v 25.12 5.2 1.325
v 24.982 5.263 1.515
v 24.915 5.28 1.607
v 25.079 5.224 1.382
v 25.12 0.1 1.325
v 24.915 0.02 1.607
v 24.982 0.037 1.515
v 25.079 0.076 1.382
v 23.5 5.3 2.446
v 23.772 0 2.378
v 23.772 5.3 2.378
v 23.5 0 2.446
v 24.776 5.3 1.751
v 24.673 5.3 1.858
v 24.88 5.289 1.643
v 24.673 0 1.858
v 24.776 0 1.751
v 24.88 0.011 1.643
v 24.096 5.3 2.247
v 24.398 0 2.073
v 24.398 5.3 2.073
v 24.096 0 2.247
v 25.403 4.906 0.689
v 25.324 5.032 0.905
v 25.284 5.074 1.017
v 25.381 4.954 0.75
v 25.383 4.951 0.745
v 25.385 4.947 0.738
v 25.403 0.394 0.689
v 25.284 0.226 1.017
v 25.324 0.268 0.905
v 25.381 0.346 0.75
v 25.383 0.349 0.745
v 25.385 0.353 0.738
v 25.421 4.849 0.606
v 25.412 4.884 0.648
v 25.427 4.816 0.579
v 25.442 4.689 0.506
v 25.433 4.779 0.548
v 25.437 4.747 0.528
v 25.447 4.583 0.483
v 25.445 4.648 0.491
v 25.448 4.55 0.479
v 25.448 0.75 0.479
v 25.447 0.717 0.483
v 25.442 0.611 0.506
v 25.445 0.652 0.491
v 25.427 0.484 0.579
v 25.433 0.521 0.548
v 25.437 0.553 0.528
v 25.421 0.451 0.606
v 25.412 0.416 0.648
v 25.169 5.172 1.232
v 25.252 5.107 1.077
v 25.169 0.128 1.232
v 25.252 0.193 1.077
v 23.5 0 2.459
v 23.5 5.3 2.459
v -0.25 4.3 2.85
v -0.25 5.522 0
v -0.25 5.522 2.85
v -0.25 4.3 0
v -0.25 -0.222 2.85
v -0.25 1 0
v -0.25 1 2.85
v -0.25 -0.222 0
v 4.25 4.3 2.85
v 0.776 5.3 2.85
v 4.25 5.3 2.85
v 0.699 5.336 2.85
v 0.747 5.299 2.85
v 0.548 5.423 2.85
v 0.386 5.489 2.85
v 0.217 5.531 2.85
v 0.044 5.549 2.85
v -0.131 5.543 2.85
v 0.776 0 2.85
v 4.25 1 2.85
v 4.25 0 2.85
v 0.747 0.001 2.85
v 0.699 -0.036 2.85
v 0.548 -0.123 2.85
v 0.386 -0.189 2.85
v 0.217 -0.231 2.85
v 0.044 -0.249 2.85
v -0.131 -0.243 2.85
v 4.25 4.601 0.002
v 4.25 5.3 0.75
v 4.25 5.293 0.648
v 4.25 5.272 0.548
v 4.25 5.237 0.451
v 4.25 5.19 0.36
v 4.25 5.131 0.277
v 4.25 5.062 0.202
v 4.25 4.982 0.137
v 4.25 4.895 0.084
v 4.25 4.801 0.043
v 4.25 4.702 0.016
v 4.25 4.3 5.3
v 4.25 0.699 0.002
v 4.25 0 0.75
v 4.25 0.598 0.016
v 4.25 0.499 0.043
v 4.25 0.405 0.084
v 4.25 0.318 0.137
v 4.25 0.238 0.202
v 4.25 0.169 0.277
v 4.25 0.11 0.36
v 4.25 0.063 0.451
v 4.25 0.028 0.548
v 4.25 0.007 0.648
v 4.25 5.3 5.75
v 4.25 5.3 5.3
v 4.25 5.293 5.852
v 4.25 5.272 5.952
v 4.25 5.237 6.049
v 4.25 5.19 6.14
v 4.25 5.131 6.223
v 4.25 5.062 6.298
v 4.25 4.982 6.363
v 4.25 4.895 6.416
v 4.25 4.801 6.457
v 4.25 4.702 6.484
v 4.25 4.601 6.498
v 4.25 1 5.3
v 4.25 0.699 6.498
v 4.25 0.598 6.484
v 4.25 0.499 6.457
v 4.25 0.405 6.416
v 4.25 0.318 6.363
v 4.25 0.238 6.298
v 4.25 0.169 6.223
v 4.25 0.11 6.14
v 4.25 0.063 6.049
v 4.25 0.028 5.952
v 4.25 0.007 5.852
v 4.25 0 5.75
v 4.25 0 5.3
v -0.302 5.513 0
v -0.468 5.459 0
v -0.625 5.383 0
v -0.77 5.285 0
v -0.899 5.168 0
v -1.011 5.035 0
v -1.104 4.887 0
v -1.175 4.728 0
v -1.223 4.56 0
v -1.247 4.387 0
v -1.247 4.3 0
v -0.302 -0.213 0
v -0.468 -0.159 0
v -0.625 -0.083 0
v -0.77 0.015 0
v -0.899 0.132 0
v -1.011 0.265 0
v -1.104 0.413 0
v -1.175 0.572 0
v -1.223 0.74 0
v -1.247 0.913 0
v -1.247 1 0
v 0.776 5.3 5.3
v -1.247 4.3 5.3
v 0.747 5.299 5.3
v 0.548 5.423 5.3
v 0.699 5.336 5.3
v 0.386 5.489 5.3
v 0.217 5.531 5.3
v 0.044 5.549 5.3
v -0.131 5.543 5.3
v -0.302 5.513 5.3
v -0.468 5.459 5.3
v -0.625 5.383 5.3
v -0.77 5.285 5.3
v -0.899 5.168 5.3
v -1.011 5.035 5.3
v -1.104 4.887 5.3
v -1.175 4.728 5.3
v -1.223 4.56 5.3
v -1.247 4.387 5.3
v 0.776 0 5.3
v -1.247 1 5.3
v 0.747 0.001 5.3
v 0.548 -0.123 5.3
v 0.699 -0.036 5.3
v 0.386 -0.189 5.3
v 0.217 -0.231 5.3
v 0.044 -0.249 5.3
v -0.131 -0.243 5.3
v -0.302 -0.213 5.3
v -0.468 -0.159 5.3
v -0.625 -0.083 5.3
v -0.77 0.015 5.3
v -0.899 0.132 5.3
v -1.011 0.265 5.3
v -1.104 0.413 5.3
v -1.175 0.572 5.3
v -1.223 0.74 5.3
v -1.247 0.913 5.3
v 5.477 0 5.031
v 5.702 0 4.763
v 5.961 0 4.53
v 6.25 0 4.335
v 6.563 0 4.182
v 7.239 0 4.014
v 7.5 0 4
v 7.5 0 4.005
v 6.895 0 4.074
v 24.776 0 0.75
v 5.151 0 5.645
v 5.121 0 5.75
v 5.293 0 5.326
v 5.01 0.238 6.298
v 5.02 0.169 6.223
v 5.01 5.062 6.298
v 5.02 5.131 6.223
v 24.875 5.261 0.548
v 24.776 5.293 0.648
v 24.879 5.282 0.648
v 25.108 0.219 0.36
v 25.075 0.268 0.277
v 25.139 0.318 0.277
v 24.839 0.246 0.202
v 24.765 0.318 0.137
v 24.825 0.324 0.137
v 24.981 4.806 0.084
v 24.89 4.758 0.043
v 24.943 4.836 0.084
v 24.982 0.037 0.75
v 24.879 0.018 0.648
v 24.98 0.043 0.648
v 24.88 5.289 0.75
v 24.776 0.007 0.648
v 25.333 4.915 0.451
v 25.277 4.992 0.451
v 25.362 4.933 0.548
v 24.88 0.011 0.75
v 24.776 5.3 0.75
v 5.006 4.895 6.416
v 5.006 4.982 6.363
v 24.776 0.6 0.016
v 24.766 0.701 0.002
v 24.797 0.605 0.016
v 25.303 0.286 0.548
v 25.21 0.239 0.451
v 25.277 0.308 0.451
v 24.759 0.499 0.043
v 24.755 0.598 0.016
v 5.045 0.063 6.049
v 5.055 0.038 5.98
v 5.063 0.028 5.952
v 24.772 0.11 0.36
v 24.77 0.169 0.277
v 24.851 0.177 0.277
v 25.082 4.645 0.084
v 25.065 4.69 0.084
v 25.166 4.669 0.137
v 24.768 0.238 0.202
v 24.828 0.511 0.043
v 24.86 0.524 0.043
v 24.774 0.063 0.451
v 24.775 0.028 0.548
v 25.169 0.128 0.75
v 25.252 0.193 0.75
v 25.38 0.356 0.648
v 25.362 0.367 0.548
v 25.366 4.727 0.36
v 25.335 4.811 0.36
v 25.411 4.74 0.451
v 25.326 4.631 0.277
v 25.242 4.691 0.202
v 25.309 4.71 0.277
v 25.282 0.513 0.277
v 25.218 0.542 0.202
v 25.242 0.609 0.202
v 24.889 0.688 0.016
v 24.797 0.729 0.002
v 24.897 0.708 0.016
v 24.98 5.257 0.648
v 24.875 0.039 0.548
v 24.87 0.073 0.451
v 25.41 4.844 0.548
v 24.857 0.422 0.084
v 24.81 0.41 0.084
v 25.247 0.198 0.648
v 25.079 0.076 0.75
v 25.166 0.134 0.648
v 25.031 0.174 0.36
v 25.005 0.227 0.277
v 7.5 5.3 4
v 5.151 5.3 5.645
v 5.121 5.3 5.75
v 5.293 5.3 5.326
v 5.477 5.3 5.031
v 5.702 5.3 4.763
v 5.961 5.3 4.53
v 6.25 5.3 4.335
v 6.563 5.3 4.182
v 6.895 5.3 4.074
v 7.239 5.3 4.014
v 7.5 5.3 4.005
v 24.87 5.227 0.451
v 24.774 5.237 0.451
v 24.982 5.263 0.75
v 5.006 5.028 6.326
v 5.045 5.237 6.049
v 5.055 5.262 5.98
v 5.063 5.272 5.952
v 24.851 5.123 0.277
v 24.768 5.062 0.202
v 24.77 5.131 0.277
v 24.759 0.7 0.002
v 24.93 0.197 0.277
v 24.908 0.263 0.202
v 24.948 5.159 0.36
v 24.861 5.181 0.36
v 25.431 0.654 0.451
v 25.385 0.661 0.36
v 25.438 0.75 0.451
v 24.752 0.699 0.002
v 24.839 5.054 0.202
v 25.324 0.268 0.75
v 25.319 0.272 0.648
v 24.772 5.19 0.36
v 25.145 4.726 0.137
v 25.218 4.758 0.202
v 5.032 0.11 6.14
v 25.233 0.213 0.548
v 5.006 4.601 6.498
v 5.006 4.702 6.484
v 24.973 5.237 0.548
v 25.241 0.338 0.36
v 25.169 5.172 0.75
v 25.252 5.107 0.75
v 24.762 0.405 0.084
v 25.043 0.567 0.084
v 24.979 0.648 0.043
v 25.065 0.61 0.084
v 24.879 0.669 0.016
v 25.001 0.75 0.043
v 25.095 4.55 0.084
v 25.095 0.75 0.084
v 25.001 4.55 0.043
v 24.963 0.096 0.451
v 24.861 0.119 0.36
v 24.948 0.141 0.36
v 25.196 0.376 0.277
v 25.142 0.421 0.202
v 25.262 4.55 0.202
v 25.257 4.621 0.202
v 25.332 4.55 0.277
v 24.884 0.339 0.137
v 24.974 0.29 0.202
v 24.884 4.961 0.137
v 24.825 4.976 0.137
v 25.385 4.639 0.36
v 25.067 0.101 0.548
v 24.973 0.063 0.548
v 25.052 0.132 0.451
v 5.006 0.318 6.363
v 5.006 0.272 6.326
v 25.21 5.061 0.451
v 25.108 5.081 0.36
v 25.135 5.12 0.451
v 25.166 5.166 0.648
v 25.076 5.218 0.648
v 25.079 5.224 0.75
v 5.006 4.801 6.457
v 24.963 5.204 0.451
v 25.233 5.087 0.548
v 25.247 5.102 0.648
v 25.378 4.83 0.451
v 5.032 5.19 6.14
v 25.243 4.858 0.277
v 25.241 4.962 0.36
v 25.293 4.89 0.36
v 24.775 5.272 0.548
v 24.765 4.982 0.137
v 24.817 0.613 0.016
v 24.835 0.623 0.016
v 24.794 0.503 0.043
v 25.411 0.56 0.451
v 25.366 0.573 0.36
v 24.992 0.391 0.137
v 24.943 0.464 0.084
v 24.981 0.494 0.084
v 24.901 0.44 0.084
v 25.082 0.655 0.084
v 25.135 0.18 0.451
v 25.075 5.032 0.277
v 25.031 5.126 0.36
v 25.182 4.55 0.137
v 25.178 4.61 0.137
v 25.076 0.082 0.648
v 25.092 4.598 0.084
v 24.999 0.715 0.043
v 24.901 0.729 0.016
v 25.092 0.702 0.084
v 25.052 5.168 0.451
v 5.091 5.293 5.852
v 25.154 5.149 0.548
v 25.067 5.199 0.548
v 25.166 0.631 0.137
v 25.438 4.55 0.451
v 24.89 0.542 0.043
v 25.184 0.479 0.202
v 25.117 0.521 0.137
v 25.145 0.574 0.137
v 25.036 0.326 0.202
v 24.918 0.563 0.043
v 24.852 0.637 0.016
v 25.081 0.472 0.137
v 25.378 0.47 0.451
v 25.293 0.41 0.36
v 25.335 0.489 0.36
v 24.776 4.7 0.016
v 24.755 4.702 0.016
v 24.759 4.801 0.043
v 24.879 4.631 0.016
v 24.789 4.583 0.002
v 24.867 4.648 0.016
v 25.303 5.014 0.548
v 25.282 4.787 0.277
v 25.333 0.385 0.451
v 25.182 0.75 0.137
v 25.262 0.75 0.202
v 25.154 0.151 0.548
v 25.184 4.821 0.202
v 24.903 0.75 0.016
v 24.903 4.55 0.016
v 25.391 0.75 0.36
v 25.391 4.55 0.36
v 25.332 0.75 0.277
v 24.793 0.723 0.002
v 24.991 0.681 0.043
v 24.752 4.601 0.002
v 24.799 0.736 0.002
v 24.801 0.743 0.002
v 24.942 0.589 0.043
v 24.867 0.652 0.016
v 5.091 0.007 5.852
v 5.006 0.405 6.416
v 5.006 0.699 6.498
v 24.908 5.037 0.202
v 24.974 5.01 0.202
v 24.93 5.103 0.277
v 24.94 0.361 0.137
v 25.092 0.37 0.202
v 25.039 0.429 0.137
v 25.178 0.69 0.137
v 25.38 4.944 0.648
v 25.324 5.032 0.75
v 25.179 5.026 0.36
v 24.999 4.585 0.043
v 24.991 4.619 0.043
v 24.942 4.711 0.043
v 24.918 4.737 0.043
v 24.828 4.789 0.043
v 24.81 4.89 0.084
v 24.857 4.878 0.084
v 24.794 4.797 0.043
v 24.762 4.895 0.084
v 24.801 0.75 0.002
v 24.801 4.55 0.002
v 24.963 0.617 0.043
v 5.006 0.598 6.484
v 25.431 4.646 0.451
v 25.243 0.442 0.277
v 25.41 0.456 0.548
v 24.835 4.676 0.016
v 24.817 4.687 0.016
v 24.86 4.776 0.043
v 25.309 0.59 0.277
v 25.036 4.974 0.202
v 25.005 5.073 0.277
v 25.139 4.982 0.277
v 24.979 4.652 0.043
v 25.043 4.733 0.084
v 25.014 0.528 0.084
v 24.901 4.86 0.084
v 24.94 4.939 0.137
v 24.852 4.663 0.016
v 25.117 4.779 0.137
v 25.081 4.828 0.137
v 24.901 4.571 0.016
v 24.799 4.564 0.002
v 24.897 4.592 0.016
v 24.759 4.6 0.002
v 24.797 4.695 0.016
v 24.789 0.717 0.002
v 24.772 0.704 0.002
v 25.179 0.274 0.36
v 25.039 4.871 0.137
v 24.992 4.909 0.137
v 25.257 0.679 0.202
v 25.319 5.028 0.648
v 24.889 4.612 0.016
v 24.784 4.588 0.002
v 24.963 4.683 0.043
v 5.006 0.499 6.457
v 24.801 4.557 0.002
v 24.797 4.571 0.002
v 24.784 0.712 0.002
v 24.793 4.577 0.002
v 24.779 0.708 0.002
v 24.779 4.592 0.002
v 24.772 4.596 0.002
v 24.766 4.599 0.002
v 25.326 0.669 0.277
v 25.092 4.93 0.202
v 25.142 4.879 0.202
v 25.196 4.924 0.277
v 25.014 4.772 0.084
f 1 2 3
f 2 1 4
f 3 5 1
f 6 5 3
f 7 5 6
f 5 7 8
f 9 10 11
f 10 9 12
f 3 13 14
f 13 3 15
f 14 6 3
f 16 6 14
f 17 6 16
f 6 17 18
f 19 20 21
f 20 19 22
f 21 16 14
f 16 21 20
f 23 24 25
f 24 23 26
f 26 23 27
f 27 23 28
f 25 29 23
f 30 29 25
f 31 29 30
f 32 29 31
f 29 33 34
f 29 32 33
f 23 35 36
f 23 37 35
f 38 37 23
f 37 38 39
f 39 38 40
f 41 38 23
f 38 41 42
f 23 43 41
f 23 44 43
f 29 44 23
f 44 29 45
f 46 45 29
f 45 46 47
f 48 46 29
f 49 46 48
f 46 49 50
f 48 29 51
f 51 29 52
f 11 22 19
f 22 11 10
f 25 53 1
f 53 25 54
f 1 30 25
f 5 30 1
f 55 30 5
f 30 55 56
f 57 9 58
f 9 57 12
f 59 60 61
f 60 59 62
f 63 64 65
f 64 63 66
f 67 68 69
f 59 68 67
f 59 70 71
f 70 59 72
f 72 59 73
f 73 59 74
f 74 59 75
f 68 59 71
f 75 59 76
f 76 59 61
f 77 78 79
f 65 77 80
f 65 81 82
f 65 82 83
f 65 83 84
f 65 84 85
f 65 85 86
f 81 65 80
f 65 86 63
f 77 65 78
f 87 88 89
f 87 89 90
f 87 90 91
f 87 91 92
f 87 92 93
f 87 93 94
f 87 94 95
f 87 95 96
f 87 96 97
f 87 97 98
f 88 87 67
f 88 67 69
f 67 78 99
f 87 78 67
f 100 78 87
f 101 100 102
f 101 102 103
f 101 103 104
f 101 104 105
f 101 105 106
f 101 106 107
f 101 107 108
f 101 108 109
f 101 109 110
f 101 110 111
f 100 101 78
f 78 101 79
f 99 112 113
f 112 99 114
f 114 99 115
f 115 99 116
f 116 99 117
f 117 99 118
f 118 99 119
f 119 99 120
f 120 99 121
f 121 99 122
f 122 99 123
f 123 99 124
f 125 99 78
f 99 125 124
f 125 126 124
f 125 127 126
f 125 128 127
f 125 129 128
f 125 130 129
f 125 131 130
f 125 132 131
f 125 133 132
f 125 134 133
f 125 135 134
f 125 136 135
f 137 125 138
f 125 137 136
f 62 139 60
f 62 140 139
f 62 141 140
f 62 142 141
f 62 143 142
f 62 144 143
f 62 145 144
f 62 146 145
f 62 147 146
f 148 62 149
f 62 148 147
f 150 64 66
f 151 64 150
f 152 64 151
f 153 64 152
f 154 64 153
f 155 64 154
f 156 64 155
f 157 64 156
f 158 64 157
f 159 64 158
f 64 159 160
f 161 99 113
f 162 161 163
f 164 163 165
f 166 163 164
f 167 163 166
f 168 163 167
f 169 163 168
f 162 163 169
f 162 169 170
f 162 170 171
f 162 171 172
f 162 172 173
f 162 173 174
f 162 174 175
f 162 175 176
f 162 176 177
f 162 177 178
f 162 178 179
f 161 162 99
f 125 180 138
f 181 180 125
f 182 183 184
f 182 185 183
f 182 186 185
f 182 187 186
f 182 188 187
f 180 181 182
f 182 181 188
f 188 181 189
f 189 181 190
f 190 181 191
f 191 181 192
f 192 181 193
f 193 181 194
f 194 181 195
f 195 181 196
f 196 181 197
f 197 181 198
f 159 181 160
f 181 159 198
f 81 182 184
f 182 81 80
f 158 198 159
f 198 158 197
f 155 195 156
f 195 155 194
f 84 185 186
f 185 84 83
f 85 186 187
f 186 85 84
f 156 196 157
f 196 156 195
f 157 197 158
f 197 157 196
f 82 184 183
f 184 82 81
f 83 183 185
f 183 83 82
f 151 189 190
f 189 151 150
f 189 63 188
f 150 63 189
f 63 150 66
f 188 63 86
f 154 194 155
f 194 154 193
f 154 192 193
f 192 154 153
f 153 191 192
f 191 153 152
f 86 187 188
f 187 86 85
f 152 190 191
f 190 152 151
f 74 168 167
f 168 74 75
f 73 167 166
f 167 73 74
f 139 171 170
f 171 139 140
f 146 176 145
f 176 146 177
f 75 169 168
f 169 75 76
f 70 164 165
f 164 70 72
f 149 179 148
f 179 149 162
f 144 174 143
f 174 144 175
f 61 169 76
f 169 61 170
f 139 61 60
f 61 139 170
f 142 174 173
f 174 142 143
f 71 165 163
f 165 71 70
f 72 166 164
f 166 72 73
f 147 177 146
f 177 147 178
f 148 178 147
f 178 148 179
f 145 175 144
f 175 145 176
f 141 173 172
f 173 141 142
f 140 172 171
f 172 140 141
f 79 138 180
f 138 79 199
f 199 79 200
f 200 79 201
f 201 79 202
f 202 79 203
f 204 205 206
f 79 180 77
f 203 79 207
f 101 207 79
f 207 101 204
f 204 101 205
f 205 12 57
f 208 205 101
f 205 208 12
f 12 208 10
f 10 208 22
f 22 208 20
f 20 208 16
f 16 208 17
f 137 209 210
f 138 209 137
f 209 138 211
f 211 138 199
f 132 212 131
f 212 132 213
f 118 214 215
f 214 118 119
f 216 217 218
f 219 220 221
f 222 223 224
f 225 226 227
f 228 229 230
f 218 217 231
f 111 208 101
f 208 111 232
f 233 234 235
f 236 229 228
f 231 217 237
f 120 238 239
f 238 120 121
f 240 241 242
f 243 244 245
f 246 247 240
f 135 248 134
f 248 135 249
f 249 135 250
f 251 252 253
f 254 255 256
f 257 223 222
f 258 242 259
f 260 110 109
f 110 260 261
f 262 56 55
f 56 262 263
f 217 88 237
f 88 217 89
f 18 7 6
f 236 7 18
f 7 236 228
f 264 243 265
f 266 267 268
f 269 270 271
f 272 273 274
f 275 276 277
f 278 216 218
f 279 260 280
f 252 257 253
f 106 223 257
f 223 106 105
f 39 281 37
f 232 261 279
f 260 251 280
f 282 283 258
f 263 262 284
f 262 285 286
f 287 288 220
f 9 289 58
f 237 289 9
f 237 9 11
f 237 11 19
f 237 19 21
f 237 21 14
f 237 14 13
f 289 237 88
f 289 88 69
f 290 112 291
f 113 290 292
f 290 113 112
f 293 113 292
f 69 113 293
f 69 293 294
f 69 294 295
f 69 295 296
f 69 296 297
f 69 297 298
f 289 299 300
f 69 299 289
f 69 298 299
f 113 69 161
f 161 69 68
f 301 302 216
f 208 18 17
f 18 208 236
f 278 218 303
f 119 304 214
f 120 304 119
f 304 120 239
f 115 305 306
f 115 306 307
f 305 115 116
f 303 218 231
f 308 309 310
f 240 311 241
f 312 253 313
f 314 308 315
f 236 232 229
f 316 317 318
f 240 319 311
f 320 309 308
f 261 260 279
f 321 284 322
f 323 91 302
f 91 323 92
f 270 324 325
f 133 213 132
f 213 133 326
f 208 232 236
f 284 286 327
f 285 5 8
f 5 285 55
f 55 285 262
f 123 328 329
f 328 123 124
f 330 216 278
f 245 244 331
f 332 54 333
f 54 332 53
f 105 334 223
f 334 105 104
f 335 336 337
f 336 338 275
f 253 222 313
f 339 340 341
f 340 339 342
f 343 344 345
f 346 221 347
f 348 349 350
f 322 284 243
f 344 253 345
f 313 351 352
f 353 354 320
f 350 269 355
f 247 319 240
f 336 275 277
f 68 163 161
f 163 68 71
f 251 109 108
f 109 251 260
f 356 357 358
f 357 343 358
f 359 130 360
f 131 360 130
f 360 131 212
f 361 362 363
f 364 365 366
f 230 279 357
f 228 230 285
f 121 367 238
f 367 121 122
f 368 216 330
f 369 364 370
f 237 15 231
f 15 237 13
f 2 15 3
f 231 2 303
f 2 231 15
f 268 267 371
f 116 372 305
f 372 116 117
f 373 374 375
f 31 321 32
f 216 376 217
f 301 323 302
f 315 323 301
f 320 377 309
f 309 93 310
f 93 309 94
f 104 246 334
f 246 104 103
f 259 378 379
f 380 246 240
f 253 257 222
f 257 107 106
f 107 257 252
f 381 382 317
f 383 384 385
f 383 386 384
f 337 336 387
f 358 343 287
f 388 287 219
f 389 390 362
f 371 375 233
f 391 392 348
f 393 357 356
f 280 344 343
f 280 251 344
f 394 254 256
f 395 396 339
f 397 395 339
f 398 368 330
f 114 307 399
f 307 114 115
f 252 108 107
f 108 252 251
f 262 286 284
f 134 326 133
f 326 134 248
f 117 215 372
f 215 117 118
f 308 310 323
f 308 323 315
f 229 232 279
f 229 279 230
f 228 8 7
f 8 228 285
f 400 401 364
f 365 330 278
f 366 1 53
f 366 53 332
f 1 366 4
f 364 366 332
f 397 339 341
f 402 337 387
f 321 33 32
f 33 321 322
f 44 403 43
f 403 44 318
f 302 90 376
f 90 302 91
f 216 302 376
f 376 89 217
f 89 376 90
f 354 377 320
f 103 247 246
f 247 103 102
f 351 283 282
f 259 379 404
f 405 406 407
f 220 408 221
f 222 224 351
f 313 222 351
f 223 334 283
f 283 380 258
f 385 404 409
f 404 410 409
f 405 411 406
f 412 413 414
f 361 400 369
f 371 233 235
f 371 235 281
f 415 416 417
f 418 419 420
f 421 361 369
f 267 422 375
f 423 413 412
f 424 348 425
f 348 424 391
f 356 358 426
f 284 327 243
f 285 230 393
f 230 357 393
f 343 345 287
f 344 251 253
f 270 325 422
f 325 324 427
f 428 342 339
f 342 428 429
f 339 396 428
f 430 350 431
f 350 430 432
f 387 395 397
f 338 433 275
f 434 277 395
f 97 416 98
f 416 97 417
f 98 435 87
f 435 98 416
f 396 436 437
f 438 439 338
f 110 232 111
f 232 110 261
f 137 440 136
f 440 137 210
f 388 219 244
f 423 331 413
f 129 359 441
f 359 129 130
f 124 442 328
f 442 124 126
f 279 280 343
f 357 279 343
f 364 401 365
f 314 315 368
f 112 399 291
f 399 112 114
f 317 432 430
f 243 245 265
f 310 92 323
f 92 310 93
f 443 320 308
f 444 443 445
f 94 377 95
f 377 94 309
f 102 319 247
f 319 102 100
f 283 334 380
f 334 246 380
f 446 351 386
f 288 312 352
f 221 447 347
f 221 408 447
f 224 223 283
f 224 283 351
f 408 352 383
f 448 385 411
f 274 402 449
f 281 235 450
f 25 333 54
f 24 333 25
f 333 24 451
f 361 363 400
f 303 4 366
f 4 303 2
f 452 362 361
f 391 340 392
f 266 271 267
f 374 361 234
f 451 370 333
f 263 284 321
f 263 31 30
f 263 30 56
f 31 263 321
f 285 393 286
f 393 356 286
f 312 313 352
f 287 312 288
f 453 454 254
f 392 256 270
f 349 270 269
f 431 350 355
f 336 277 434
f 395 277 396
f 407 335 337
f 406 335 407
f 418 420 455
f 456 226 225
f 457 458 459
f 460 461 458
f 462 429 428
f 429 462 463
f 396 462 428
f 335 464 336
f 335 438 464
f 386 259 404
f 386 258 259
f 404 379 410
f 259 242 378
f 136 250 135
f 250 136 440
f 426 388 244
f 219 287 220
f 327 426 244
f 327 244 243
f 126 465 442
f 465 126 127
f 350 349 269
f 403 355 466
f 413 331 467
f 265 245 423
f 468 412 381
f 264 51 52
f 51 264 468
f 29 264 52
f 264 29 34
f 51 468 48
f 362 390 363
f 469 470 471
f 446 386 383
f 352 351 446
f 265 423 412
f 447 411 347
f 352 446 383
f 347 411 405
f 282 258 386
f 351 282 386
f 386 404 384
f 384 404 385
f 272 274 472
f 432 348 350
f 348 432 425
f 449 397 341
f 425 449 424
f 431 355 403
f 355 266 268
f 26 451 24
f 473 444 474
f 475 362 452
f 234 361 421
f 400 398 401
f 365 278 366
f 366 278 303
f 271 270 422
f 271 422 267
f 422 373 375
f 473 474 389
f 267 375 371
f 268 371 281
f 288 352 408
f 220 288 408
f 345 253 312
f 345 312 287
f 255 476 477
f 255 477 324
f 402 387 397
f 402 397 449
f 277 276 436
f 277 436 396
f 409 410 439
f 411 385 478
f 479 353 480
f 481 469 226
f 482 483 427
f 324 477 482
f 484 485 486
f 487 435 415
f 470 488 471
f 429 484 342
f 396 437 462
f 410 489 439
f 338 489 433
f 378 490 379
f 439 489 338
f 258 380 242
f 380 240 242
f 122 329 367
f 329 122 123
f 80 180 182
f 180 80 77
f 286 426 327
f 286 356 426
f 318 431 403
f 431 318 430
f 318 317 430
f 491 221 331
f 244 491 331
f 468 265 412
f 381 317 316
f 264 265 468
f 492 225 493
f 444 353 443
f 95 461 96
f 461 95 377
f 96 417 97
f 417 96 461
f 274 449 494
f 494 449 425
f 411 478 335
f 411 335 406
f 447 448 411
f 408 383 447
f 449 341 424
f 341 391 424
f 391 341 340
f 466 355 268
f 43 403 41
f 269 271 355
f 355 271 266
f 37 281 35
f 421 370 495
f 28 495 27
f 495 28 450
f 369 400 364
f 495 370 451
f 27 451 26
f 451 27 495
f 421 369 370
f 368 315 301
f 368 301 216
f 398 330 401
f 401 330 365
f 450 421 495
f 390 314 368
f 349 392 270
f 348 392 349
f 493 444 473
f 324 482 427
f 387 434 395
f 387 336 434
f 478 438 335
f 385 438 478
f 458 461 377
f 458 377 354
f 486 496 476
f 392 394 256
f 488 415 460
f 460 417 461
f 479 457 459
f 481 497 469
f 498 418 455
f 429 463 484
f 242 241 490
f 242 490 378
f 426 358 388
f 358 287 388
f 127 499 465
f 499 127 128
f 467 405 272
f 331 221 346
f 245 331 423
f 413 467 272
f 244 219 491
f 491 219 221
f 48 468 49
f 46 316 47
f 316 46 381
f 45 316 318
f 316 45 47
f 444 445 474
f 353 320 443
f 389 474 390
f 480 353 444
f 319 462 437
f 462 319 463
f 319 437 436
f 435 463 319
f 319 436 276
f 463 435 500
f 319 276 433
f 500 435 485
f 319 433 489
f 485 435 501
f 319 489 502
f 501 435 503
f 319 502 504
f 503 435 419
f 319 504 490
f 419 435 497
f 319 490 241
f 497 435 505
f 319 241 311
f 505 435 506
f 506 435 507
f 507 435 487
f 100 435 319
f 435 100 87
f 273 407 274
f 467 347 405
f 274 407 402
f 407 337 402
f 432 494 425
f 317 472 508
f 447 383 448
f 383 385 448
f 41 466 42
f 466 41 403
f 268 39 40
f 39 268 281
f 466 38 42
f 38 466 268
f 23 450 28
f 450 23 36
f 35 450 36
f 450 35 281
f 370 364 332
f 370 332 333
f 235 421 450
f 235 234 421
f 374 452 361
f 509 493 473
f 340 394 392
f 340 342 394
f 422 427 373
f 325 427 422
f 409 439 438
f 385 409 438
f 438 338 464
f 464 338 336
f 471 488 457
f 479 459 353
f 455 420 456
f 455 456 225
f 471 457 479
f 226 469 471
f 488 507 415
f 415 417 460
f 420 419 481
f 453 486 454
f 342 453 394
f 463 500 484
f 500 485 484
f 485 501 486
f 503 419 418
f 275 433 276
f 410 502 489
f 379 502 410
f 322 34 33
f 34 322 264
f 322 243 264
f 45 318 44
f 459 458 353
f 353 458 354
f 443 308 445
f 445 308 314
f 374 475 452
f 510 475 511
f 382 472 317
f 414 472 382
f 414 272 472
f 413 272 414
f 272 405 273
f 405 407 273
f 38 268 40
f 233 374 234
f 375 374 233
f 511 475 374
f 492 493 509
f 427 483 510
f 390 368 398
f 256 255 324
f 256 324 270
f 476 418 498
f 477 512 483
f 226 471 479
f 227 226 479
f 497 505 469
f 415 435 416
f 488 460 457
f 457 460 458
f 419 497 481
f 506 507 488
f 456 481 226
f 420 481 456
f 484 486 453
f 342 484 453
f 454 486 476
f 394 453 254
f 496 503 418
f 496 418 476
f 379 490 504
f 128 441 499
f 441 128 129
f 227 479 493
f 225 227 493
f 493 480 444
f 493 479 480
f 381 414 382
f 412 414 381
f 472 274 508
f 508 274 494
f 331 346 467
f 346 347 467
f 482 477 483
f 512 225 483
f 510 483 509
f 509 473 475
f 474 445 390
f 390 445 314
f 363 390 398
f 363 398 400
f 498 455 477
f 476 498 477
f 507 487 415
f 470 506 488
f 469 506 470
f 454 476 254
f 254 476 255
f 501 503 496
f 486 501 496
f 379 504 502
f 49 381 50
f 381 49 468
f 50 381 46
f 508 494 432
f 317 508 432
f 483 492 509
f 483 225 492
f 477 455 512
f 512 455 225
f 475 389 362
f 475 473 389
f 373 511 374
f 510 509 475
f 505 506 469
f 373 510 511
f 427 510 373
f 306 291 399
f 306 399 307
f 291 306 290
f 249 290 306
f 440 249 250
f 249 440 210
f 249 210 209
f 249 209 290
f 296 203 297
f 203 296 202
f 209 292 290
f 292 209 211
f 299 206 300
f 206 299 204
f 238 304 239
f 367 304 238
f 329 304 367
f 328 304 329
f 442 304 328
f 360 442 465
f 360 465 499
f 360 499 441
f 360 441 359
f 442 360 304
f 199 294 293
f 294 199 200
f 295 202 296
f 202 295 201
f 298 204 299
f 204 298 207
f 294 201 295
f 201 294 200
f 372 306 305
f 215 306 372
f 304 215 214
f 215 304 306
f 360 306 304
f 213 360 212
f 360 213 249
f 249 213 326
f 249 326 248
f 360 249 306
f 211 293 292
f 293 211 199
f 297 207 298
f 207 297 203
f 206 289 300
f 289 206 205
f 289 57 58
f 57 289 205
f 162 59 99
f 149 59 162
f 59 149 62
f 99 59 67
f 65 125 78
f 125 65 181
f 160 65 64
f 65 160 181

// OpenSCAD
$fn = 45;

difference() {
    union() {
        translate([0, 1, 0]) cylinder(d = 2.5, h = 6.5);
        translate([0, 4.3, 0]) cylinder(d = 2.5, h = 6.5);
        minkowski() {
            translate([0.75, 0.75, 0.75]) cube([24, 3.8, 5]);
            sphere(d = 1.5);
        }
    }

    // Tip Cut
    translate([25.5 - 2.5, 0, 0]) {
        intersection() {
            difference() {
                translate([-2.5, 0, 0]) cube([5, 10, 10]);
                rotate([-90, 0 , 0]) cylinder(r = 2.5, h = 10);
            }
            translate([.5, 0, 0]) cube([5, 10, 10]);
        }
    }
    
    // Bottom Cut
    translate([7.5, 0, 6.5]) rotate([-90, 0, 0]) cylinder(r = 2.5, h = 10);
    
    // Slant to connect...
    translate([7.5, 0, 4]) rotate([0, 5.5, 0]) cube([25, 5.5, 5]);
    
    // Lower Keys
    translate([-1.25, -1, 0]) {
        translate([1, 0, 0]) cube([4.5, 7.5, 2.85]);
        translate([0, 0, 2.85 + 2.45]) cube([5.5, 7.5, 2.85]);
    }
    
    // Lower Cut
    translate([-1.25, 1, 0]) cube([5.5, 3.3, 6.5]);
}
